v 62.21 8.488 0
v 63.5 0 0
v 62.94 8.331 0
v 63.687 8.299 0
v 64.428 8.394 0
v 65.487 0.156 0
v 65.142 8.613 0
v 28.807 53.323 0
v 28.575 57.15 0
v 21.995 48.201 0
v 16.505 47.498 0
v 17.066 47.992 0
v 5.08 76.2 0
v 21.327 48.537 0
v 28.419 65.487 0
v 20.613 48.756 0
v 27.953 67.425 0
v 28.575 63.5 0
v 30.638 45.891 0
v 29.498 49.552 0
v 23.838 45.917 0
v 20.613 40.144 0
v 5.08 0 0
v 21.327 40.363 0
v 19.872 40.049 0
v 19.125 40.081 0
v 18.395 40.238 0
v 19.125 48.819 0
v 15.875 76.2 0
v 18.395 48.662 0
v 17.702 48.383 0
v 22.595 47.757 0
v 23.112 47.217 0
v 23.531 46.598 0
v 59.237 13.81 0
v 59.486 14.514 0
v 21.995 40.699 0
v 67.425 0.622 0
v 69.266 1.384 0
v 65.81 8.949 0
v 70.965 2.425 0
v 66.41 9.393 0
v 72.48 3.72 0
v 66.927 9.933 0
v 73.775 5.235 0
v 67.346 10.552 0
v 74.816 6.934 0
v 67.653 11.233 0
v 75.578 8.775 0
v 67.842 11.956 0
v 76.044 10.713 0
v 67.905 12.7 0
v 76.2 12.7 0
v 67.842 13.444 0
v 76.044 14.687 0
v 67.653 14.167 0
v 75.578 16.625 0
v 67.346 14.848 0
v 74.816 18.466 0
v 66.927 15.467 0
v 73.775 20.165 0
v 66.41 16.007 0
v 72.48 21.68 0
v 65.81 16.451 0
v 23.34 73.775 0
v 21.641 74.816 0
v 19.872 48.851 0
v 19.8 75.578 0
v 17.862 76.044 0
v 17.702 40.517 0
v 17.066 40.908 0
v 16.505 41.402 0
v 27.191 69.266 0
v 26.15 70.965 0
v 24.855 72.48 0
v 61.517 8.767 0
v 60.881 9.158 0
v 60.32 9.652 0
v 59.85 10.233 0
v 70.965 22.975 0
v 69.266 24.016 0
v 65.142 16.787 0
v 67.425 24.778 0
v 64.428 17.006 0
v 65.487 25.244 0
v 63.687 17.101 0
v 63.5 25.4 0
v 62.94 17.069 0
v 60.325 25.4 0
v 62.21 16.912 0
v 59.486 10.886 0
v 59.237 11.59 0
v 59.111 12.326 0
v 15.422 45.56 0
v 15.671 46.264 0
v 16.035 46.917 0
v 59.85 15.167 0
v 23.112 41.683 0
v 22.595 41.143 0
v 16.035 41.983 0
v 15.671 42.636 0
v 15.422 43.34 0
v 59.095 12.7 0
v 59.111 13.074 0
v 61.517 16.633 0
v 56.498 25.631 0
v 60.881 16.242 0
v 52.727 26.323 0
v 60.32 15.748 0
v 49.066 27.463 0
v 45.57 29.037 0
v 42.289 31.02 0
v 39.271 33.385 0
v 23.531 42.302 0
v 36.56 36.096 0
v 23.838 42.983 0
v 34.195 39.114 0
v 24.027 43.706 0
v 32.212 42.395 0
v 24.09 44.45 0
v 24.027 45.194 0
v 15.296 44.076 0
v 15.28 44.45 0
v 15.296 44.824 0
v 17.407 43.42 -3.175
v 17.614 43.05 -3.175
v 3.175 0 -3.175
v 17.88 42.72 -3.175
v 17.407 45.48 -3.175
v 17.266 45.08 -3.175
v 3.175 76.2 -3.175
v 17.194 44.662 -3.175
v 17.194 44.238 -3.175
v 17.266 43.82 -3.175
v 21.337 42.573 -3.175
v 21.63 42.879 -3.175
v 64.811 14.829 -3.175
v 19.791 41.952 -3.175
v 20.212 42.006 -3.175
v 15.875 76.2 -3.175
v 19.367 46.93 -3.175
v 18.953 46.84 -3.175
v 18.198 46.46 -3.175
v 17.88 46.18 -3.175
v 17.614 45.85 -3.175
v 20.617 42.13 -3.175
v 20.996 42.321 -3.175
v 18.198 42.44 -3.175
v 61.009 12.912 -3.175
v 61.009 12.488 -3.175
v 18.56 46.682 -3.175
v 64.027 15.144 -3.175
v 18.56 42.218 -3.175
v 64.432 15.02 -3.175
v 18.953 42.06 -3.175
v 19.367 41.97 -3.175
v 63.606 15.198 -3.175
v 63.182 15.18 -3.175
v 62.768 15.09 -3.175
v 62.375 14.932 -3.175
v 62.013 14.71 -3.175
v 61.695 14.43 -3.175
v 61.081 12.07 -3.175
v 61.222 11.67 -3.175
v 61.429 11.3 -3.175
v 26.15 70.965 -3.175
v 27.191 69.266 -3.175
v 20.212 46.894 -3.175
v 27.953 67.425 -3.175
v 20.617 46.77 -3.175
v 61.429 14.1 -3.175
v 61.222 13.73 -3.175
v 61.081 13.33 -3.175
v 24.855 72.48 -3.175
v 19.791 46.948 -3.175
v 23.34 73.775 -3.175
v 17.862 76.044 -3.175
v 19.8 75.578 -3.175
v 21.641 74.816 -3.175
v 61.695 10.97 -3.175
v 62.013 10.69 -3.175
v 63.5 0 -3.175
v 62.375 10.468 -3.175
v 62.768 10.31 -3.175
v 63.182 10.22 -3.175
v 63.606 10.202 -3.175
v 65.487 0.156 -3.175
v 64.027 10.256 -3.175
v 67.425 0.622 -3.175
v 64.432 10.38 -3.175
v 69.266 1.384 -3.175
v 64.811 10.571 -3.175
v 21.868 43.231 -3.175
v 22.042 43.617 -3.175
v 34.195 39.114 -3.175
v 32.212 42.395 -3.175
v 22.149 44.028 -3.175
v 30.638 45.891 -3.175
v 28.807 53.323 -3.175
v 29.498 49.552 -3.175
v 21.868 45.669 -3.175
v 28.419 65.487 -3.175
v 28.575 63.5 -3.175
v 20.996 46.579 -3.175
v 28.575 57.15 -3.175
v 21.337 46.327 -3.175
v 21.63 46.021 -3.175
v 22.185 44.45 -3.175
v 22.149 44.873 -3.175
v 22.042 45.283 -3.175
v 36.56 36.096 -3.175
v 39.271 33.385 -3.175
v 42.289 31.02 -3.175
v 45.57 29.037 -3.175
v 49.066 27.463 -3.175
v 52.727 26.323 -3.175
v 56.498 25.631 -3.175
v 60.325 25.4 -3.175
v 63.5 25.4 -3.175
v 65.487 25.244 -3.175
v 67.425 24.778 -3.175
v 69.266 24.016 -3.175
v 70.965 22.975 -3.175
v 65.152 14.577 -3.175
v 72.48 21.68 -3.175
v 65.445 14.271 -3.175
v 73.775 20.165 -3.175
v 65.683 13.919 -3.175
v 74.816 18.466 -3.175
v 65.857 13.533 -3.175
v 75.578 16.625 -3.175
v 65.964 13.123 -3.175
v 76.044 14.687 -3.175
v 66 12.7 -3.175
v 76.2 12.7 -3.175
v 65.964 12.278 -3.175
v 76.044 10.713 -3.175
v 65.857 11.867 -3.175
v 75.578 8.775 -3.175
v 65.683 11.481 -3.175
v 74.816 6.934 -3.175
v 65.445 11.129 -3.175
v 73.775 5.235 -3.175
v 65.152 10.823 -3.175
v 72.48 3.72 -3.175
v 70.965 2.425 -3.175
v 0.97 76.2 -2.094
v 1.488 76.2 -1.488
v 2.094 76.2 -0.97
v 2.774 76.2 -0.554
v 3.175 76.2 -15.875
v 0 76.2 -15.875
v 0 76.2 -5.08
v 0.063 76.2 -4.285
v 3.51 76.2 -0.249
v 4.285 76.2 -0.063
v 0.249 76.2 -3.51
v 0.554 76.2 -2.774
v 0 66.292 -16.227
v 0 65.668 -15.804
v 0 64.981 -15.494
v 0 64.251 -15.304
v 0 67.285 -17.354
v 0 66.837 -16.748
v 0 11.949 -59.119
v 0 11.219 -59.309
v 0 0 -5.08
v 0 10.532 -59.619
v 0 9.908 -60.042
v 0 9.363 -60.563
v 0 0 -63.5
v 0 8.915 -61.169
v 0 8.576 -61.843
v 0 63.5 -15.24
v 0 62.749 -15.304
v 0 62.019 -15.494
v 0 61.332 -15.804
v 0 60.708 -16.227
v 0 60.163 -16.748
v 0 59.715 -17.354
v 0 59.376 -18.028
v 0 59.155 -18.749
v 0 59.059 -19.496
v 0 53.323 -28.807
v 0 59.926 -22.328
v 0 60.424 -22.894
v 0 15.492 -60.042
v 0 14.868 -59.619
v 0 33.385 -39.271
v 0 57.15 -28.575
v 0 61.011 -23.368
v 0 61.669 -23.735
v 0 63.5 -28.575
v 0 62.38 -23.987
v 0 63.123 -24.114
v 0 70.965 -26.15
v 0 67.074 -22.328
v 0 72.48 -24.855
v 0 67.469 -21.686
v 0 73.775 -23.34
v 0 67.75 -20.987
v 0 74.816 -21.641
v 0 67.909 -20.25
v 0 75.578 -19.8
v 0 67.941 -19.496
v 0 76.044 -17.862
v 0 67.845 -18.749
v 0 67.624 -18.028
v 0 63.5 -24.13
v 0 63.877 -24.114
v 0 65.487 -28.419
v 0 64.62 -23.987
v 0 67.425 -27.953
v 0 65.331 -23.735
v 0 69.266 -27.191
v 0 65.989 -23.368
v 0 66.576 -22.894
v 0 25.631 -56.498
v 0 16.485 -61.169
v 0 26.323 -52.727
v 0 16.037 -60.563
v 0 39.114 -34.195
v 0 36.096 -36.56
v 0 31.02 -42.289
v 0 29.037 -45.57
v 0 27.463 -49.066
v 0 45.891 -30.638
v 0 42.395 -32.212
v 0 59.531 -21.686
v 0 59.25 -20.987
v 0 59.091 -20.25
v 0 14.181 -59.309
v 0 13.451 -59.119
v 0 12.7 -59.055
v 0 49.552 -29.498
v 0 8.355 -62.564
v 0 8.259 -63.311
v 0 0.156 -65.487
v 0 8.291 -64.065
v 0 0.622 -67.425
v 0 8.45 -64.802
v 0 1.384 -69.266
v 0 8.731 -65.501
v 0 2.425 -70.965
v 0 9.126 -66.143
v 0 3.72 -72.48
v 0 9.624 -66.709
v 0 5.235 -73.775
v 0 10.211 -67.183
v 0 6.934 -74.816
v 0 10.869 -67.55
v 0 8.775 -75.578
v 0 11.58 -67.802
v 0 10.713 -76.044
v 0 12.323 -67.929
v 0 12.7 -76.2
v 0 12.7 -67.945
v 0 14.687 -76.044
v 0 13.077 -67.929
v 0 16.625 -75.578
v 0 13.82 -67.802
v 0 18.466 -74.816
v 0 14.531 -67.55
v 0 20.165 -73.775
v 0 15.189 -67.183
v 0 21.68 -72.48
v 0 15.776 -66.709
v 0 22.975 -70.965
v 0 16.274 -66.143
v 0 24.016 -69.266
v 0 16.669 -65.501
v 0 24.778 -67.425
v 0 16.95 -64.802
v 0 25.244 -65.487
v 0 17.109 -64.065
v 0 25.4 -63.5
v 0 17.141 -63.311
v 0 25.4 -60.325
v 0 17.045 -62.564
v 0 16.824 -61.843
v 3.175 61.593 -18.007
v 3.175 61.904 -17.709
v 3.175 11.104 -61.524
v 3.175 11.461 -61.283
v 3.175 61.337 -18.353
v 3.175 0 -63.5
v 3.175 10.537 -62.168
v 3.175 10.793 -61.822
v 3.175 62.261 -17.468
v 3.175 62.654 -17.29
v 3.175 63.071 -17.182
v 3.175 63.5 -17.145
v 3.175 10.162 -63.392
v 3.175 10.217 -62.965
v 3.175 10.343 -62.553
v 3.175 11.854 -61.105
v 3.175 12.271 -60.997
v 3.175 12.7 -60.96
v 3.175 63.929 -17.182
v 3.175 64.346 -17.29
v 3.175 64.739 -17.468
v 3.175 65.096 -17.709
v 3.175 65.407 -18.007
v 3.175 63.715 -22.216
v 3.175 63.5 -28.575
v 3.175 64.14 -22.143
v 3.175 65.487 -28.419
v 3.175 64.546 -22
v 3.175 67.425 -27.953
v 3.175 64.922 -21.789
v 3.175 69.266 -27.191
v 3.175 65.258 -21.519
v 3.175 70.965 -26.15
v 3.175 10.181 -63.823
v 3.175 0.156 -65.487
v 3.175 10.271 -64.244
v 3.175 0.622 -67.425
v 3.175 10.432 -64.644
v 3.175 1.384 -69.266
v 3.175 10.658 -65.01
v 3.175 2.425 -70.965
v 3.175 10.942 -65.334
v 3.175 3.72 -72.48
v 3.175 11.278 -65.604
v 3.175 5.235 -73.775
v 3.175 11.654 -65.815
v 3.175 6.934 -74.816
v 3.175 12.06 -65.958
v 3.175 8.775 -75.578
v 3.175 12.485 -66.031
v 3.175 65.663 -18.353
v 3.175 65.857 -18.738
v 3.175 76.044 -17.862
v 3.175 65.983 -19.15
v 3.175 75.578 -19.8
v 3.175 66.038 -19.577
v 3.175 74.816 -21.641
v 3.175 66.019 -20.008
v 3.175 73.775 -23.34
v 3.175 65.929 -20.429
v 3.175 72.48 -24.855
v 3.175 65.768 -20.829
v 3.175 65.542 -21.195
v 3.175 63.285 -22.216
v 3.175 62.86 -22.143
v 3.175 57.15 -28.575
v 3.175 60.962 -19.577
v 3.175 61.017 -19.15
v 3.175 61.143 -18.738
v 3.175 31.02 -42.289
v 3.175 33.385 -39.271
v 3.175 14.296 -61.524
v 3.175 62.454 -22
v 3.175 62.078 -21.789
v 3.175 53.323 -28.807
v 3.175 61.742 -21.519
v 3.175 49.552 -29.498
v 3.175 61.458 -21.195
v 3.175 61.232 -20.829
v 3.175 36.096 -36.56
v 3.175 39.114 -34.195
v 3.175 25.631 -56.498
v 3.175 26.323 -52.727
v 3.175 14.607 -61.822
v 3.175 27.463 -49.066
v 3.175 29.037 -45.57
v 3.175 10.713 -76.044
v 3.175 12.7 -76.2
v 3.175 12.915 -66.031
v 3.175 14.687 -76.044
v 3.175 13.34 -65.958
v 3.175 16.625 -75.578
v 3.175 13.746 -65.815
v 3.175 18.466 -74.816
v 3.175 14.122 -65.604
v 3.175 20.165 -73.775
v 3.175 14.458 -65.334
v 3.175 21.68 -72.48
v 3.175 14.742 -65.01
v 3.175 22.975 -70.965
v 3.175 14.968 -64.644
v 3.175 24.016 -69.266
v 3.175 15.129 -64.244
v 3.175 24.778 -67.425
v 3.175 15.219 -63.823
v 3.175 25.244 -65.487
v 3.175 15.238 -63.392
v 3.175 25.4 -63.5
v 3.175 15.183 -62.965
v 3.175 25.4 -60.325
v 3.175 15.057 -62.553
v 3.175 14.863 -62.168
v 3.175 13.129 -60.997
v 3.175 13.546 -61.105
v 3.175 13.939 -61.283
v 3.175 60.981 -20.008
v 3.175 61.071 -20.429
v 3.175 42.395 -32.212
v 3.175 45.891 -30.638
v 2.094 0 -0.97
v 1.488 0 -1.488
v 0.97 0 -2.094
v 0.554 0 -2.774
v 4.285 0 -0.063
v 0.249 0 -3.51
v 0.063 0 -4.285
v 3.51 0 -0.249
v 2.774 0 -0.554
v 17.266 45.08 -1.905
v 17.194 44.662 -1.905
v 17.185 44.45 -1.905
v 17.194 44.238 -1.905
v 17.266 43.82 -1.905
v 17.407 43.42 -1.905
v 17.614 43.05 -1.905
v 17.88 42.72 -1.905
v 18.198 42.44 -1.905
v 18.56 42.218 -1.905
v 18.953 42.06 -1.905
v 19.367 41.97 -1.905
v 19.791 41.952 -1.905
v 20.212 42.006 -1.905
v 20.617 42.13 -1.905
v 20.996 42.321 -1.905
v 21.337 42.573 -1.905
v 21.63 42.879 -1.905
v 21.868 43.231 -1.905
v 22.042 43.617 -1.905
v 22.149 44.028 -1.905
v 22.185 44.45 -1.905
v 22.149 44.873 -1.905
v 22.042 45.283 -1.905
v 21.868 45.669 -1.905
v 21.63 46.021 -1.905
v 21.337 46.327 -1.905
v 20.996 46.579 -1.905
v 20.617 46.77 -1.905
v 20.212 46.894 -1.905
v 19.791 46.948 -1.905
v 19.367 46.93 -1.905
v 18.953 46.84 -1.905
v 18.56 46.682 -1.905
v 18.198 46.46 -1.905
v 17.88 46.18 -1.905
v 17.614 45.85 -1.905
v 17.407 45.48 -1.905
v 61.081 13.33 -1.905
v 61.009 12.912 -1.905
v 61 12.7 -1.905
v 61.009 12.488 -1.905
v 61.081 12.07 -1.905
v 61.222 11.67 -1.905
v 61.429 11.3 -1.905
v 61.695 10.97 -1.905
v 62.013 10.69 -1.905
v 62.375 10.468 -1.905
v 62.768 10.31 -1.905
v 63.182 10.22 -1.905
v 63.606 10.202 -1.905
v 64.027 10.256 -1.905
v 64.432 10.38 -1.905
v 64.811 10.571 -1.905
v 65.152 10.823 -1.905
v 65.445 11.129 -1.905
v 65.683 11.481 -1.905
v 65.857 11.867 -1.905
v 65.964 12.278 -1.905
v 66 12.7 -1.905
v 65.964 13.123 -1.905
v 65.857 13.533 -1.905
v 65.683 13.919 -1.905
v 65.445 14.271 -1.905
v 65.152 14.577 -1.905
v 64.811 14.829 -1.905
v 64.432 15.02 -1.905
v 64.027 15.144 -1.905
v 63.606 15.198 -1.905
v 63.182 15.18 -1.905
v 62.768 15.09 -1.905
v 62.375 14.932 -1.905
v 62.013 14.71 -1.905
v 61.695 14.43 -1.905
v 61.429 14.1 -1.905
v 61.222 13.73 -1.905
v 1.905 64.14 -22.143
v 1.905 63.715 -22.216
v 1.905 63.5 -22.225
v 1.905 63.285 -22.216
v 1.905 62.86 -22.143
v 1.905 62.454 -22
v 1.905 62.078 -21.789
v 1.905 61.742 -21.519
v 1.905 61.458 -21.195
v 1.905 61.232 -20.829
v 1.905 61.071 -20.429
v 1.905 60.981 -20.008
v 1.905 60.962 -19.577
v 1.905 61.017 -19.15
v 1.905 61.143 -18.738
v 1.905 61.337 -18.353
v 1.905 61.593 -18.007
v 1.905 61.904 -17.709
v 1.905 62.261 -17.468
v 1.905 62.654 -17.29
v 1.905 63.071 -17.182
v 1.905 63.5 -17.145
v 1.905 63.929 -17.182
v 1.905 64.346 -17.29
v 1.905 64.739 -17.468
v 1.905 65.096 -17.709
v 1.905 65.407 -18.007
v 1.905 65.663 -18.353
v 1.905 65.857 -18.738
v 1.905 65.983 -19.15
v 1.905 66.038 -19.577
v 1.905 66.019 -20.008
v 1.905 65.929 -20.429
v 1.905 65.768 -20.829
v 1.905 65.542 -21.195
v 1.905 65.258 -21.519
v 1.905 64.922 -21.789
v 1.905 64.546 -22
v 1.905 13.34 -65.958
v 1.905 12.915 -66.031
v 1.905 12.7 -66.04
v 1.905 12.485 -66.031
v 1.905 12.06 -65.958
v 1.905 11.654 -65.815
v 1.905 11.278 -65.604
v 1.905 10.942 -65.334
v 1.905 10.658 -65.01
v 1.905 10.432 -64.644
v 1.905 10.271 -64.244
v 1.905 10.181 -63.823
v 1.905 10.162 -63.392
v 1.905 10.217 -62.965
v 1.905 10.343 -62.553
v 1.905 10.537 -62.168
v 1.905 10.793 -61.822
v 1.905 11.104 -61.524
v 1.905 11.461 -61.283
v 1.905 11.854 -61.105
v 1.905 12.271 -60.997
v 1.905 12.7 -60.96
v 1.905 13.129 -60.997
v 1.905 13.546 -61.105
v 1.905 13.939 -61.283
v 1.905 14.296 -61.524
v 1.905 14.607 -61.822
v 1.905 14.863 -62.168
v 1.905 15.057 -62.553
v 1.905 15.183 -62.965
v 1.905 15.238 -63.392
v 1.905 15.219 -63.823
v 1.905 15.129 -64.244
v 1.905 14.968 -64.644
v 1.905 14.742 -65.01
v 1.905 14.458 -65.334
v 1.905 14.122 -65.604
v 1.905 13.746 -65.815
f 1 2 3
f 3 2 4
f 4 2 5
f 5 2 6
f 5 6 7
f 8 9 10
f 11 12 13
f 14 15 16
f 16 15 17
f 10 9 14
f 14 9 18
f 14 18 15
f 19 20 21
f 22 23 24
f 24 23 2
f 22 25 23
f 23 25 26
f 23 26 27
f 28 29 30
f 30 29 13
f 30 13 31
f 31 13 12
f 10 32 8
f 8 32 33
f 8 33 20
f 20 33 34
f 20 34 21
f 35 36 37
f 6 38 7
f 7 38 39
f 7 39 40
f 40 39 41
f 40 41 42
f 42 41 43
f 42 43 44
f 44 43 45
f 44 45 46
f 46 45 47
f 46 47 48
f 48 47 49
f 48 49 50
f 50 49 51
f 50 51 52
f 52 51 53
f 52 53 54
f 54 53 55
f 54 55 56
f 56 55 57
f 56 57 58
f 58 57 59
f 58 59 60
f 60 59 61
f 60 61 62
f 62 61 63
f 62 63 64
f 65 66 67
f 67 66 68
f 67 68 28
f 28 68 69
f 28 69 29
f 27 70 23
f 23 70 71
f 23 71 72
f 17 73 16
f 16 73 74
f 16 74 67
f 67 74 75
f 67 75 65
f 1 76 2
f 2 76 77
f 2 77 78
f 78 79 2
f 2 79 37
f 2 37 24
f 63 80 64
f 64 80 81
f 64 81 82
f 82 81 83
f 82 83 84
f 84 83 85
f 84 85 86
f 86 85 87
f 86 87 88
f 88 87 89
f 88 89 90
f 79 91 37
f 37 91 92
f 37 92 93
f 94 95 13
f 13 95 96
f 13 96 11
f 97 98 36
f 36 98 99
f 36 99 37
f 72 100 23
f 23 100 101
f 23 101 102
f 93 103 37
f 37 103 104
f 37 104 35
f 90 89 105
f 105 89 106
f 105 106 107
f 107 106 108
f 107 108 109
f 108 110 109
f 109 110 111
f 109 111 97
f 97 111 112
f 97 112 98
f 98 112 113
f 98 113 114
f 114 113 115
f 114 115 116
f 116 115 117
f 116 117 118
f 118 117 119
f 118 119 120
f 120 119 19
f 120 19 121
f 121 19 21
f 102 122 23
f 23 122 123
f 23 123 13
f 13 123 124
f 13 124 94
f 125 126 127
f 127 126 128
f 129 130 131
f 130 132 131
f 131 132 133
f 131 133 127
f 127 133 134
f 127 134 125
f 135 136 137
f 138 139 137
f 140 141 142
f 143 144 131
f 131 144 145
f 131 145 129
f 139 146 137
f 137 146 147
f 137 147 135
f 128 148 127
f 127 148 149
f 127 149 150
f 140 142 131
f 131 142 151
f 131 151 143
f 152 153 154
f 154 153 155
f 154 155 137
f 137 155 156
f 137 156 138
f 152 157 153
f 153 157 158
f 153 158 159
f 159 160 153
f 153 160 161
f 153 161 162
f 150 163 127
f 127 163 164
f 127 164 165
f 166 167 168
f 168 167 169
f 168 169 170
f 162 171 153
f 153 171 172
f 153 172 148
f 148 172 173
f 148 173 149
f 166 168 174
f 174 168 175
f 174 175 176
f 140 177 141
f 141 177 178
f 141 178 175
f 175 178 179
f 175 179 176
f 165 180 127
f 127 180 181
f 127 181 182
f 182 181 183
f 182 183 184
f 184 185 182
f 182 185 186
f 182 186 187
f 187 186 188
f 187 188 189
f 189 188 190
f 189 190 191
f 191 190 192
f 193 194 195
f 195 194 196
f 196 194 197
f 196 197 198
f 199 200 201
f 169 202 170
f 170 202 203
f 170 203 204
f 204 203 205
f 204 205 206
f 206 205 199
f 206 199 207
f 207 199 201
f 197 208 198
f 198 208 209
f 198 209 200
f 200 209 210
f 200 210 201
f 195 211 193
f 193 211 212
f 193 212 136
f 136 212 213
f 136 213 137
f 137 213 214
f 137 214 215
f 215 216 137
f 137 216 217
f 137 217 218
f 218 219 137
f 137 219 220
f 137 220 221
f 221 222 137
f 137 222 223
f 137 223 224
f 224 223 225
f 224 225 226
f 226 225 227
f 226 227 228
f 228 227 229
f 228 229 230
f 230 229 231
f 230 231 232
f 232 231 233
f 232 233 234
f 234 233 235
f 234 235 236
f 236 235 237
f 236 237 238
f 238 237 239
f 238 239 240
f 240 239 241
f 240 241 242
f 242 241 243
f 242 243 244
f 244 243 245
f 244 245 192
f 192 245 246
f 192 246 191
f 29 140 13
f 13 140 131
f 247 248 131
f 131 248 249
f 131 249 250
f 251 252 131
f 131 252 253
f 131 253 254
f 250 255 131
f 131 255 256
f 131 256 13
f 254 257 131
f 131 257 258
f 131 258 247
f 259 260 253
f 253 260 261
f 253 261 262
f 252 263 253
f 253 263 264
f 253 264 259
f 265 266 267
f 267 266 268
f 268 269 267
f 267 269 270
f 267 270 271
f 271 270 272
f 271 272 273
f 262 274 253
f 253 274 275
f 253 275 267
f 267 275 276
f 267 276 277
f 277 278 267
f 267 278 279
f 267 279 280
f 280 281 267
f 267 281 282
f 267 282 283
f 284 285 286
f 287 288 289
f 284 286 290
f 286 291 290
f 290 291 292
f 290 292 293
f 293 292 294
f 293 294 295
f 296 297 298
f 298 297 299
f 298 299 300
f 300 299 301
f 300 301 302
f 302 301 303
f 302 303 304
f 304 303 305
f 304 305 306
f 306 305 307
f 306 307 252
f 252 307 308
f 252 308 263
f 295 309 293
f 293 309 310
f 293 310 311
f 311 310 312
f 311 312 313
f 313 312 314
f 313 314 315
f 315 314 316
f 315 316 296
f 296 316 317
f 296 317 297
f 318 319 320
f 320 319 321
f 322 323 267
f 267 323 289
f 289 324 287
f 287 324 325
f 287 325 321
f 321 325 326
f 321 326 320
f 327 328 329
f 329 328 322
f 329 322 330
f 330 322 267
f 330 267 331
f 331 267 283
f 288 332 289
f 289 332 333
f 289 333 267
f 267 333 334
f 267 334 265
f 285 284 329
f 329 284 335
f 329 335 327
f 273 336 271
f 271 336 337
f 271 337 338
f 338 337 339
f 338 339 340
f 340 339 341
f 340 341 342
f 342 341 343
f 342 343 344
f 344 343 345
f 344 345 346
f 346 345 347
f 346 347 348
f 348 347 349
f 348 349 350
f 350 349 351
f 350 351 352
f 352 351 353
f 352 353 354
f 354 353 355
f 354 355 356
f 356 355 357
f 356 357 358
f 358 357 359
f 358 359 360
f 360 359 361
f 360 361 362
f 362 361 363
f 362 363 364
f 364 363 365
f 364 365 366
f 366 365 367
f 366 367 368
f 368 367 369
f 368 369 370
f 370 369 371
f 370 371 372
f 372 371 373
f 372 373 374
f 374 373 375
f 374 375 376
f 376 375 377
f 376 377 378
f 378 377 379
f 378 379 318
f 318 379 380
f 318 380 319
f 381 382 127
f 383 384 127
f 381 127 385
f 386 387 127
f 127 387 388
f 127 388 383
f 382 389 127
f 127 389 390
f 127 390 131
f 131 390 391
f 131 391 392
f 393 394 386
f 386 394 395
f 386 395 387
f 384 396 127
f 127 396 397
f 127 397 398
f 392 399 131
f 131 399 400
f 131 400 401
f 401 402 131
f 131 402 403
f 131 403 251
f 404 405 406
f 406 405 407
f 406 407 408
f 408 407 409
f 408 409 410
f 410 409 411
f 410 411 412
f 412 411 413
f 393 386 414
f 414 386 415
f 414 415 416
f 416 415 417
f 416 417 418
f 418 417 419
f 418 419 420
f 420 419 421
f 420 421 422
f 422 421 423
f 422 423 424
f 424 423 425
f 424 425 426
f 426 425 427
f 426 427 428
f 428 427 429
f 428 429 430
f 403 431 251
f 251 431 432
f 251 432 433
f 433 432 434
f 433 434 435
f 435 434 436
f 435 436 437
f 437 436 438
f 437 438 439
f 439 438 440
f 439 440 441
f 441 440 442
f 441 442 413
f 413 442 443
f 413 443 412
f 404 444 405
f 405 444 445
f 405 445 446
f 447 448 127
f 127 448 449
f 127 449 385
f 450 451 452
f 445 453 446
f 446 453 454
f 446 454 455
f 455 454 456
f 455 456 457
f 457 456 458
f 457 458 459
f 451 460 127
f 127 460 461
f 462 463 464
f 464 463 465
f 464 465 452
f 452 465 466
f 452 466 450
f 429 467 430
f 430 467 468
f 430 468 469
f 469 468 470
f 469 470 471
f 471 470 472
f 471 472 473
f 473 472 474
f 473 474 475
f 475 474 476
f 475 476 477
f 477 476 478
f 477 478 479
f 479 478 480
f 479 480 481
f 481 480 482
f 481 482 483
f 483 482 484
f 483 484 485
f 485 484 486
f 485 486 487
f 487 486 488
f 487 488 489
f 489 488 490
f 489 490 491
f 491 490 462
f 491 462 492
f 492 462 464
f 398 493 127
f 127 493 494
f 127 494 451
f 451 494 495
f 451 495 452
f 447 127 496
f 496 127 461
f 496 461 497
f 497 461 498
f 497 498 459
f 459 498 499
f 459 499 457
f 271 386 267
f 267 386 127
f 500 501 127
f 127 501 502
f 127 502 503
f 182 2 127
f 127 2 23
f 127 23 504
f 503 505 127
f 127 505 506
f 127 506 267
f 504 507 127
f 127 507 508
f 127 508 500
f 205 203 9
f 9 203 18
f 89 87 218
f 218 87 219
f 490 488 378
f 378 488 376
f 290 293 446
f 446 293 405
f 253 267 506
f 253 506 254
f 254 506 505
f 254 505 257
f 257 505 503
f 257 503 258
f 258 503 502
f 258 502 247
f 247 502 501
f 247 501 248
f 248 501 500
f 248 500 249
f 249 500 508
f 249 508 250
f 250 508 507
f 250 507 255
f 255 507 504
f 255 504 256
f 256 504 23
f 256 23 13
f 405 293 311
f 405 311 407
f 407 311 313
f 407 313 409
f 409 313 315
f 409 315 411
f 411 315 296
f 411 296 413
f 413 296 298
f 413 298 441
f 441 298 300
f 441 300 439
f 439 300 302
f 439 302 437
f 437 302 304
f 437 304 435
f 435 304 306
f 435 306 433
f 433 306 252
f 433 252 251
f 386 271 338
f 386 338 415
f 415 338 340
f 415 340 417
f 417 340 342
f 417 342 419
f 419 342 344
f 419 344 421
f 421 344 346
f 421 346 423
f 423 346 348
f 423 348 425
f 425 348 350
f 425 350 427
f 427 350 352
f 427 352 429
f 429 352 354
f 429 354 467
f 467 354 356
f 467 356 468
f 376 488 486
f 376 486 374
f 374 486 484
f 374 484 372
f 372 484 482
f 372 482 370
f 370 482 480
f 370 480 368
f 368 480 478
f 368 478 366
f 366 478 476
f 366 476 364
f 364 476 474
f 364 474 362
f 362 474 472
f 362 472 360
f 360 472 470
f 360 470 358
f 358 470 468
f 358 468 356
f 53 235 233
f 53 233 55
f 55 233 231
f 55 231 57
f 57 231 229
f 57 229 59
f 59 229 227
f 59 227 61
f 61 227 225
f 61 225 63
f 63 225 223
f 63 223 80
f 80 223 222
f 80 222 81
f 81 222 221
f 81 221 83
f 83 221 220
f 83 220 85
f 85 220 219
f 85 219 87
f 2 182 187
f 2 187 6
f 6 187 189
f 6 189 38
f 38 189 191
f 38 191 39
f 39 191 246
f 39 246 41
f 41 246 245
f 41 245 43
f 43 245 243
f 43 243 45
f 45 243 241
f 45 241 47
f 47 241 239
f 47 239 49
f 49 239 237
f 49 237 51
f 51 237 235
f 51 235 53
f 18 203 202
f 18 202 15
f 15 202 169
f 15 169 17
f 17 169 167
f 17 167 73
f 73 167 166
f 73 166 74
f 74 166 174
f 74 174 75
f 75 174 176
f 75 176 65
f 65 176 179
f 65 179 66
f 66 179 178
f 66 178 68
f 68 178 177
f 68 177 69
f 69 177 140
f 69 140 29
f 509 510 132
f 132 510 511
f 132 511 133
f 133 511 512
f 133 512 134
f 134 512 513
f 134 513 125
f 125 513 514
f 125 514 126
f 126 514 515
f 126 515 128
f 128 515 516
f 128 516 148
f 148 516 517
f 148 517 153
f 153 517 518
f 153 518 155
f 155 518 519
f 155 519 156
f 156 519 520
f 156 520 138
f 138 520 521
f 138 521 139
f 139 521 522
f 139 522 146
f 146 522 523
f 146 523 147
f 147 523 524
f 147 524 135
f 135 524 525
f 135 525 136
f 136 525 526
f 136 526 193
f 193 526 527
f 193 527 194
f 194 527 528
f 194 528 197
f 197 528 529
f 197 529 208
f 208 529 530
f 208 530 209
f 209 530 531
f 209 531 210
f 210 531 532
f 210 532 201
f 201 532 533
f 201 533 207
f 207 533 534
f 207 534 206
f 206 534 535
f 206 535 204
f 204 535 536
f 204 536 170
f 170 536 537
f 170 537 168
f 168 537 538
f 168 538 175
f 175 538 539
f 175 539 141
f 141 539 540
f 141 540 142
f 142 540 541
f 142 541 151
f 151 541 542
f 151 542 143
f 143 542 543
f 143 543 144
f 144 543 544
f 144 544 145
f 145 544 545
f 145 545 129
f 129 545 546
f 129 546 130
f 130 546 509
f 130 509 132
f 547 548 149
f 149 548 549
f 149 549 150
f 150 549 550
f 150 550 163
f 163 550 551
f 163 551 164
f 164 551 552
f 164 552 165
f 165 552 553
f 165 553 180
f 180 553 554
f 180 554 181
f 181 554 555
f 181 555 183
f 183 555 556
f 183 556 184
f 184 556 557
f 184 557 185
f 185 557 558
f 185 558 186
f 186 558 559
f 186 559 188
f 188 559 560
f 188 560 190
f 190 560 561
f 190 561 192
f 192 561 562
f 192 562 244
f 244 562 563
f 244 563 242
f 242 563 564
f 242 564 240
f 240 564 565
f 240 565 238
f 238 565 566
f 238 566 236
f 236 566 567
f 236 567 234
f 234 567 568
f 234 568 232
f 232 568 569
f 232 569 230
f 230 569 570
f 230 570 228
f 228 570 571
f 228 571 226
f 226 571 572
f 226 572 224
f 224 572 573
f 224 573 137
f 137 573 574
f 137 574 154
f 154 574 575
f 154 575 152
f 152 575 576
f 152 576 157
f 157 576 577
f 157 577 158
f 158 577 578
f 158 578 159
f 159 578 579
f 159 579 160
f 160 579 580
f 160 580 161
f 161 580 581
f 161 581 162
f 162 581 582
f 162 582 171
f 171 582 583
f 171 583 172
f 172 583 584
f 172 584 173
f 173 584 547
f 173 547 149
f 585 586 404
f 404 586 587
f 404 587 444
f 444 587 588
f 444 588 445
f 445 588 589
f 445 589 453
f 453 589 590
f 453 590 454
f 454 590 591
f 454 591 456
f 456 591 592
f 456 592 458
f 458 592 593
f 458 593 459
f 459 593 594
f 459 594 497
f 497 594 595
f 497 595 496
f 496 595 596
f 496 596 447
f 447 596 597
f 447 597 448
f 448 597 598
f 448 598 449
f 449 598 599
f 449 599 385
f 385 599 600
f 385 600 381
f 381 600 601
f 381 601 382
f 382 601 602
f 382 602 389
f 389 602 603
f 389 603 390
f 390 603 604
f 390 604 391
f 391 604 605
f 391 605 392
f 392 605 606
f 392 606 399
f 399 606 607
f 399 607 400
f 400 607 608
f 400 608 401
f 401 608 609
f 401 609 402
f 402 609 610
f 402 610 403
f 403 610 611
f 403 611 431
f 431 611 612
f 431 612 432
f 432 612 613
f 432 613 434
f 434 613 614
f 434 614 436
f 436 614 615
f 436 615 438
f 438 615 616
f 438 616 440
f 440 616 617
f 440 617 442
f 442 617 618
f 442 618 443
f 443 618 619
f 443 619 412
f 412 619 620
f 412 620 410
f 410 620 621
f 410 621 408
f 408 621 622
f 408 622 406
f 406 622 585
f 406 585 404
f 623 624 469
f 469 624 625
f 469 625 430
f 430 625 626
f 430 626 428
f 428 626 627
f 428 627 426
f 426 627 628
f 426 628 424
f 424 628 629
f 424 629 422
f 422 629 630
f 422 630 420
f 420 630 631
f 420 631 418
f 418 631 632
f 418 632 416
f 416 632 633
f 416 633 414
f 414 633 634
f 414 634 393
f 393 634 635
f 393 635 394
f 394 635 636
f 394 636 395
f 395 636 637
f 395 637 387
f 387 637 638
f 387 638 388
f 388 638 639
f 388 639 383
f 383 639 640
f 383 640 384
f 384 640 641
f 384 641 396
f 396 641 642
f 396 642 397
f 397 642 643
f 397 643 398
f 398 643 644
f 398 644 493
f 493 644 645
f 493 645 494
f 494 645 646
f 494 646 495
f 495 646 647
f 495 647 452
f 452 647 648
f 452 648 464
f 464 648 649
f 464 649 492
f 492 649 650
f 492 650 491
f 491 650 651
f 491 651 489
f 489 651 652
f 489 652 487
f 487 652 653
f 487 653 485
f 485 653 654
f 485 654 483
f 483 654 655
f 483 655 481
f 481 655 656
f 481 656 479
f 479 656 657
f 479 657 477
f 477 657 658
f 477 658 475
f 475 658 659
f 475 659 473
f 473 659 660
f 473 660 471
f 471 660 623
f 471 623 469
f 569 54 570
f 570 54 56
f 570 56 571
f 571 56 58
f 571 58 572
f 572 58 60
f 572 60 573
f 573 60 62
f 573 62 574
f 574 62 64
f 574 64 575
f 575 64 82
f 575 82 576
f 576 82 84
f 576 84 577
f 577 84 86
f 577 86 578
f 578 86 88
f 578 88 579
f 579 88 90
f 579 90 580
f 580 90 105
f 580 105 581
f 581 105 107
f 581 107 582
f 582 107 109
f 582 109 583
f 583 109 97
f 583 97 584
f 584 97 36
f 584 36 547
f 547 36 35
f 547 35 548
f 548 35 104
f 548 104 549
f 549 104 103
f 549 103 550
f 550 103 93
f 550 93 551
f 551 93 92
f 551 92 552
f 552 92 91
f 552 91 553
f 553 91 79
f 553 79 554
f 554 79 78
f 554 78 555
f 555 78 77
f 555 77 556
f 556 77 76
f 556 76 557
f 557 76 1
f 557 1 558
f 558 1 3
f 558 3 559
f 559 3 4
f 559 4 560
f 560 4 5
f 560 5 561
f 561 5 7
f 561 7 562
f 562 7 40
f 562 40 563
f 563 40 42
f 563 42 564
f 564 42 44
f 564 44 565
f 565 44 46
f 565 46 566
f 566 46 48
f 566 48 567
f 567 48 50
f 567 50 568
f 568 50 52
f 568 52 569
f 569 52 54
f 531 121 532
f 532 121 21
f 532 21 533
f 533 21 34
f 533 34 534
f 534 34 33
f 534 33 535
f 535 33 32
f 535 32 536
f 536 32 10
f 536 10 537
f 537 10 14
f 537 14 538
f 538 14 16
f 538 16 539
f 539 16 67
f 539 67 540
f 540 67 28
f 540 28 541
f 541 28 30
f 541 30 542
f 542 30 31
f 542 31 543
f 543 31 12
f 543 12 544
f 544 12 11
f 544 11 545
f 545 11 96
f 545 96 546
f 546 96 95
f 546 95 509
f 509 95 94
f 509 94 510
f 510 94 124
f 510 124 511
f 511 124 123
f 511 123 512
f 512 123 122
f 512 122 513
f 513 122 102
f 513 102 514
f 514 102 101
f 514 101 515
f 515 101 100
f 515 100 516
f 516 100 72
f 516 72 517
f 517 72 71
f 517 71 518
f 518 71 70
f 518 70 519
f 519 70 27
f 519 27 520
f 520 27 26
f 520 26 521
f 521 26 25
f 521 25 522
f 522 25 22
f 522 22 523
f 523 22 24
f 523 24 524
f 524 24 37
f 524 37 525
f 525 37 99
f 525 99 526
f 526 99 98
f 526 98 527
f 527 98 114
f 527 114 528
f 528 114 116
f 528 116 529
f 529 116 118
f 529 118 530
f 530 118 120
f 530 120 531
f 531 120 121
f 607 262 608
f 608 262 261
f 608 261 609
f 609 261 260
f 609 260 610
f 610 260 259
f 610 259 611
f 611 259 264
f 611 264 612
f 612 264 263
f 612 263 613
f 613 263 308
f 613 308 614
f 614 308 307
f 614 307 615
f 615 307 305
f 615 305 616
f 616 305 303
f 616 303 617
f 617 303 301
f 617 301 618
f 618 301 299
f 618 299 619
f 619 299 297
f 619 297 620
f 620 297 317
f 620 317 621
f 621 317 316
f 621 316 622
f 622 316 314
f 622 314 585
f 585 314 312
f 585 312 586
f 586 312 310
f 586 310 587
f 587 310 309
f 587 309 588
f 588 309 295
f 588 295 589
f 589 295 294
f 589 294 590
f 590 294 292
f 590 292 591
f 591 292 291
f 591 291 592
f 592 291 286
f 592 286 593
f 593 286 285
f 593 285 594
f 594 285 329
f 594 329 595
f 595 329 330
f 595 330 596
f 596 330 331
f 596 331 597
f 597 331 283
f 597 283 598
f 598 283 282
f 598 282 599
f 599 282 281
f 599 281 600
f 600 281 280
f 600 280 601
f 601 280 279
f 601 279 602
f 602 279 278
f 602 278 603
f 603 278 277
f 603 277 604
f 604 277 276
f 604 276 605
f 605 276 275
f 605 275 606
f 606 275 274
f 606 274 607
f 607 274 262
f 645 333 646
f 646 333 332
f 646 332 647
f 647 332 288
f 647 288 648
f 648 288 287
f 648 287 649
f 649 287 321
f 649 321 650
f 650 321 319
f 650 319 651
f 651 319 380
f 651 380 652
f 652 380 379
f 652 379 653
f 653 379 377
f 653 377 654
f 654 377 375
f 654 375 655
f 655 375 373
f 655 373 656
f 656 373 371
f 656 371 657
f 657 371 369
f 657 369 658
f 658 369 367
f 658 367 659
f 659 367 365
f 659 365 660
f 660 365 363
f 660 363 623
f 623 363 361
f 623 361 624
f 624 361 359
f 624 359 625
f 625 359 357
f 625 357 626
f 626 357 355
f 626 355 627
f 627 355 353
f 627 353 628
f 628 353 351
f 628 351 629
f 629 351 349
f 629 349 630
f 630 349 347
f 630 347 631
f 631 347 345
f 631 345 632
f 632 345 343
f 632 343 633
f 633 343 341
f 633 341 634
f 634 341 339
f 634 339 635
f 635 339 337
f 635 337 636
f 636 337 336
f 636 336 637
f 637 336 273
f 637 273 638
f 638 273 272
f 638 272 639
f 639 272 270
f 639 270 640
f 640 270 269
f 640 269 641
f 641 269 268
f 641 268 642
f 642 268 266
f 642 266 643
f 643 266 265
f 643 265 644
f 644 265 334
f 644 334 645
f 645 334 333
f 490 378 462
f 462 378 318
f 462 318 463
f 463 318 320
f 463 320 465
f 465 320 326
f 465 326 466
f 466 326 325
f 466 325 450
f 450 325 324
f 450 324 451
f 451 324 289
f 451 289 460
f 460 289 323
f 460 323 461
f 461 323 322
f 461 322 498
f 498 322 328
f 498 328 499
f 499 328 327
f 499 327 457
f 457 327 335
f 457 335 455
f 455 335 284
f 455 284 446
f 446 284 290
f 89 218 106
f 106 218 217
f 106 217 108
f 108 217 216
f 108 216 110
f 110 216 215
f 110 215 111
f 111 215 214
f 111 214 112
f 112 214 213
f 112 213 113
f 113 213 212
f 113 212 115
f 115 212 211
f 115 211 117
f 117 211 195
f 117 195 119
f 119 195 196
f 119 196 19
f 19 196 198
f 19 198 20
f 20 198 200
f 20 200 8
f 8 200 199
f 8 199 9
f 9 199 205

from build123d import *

# Parameters (mm, degrees)
BOSS_EXTRUDE1_DEPTH = 76.2
SKETCH2_W           = 47.625
SKETCH2_H           = 50.8
CUT_EXTRUDE1_DEPTH  = 131.175
SKETCH3_W           = 47.625
SKETCH3_H           = 50.8
CUT_EXTRUDE2_DEPTH  = 131.175
FILLET1_R           = 5.08
FILLET2_R           = 12.7
SKETCH4_R           = 2.5
CUT_EXTRUDE3_DEPTH  = 132.982271537
SKETCH5_R           = 2.54
CUT_EXTRUDE4_DEPTH  = 132.982271537
CHAMFER1_SIZE       = 1.905
FILLET3_R           = 31.75


with BuildPart() as part:
    # Sketch1 → Boss-Extrude1 (new body)
    with BuildSketch(Plane(origin=(0, 0, 0), x_dir=(1, 0, 0), z_dir=(0, 1, 0))):
        Polygon((0, 76.2), (0, 0), (76.2, 0), (76.2, 3.175), (3.175, 3.175), (3.175, 76.2), align=None)
    extrude(amount=BOSS_EXTRUDE1_DEPTH)

    # Sketch2 → Cut-Extrude1 (cut, through all)
    with BuildSketch(Plane(origin=(0, 0, -3.175), x_dir=(-1, 0, 0), z_dir=(0, 0, -1))):
        with Locations((-52.3875, 50.8)):
            Rectangle(SKETCH2_W, SKETCH2_H)
    extrude(amount=-CUT_EXTRUDE1_DEPTH, mode=Mode.SUBTRACT)

    # Sketch3 → Cut-Extrude2 (cut, through all)
    with BuildSketch(Plane(origin=(3.175, 0, 0), x_dir=(0, 0, -1), z_dir=(1, 0, 0))):
        with Locations((52.3875, 50.8)):
            Rectangle(SKETCH3_W, SKETCH3_H)
    extrude(amount=-CUT_EXTRUDE2_DEPTH, mode=Mode.SUBTRACT)

    # Fillet1
    fillet1_edges = [part.edges().sort_by_distance(p)[0] for p in [
        (0, 38.1, 0),
    ]]
    fillet(fillet1_edges, radius=FILLET1_R)

    # Fillet2
    fillet2_edges = [part.edges().sort_by_distance(p)[0] for p in [
        (1.5875, 76.2, -28.575),
        (1.5875, 25.4, -76.2),
        (1.5875, 0, -76.2),
        (76.2, 0, -1.5875),
        (76.2, 25.4, -1.5875),
        (28.575, 76.2, -1.5875),
    ]]
    fillet(fillet2_edges, radius=FILLET2_R - 0.0001)  # a hair under: the kernel refuses the full size

    # Sketch4 → Cut-Extrude3 (cut, through all)
    with BuildSketch(Plane.XY):
        with Locations((63.5, 12.7)):
            Circle(SKETCH4_R)
        with Locations((19.685, 44.45)):
            Circle(SKETCH4_R)
    extrude(amount=-CUT_EXTRUDE3_DEPTH, mode=Mode.SUBTRACT)

    # Sketch5 → Cut-Extrude4 (cut, through all)
    with BuildSketch(Plane.ZY):
        with Locations((-63.5, 12.7)):
            Circle(SKETCH5_R)
        with Locations((-19.685, 63.5)):
            Circle(SKETCH5_R)
    extrude(amount=-CUT_EXTRUDE4_DEPTH, mode=Mode.SUBTRACT)

    # Chamfer1
    chamfer1_edges = [part.edges().sort_by_distance(p)[0] for p in [
        (0, 63.5, -22.225),
        (61, 12.7, 0),
        (17.185, 44.45, 0),
        (0, 12.7, -66.04),
    ]]
    chamfer(chamfer1_edges, length=CHAMFER1_SIZE)

    # Fillet3
    fillet3_edges = [part.edges().sort_by_distance(p)[0] for p in [
        (28.575, 25.4, -1.5875),
        (1.5875, 25.4, -28.575),
    ]]
    fillet(fillet3_edges, radius=FILLET3_R)


solid = part.part
